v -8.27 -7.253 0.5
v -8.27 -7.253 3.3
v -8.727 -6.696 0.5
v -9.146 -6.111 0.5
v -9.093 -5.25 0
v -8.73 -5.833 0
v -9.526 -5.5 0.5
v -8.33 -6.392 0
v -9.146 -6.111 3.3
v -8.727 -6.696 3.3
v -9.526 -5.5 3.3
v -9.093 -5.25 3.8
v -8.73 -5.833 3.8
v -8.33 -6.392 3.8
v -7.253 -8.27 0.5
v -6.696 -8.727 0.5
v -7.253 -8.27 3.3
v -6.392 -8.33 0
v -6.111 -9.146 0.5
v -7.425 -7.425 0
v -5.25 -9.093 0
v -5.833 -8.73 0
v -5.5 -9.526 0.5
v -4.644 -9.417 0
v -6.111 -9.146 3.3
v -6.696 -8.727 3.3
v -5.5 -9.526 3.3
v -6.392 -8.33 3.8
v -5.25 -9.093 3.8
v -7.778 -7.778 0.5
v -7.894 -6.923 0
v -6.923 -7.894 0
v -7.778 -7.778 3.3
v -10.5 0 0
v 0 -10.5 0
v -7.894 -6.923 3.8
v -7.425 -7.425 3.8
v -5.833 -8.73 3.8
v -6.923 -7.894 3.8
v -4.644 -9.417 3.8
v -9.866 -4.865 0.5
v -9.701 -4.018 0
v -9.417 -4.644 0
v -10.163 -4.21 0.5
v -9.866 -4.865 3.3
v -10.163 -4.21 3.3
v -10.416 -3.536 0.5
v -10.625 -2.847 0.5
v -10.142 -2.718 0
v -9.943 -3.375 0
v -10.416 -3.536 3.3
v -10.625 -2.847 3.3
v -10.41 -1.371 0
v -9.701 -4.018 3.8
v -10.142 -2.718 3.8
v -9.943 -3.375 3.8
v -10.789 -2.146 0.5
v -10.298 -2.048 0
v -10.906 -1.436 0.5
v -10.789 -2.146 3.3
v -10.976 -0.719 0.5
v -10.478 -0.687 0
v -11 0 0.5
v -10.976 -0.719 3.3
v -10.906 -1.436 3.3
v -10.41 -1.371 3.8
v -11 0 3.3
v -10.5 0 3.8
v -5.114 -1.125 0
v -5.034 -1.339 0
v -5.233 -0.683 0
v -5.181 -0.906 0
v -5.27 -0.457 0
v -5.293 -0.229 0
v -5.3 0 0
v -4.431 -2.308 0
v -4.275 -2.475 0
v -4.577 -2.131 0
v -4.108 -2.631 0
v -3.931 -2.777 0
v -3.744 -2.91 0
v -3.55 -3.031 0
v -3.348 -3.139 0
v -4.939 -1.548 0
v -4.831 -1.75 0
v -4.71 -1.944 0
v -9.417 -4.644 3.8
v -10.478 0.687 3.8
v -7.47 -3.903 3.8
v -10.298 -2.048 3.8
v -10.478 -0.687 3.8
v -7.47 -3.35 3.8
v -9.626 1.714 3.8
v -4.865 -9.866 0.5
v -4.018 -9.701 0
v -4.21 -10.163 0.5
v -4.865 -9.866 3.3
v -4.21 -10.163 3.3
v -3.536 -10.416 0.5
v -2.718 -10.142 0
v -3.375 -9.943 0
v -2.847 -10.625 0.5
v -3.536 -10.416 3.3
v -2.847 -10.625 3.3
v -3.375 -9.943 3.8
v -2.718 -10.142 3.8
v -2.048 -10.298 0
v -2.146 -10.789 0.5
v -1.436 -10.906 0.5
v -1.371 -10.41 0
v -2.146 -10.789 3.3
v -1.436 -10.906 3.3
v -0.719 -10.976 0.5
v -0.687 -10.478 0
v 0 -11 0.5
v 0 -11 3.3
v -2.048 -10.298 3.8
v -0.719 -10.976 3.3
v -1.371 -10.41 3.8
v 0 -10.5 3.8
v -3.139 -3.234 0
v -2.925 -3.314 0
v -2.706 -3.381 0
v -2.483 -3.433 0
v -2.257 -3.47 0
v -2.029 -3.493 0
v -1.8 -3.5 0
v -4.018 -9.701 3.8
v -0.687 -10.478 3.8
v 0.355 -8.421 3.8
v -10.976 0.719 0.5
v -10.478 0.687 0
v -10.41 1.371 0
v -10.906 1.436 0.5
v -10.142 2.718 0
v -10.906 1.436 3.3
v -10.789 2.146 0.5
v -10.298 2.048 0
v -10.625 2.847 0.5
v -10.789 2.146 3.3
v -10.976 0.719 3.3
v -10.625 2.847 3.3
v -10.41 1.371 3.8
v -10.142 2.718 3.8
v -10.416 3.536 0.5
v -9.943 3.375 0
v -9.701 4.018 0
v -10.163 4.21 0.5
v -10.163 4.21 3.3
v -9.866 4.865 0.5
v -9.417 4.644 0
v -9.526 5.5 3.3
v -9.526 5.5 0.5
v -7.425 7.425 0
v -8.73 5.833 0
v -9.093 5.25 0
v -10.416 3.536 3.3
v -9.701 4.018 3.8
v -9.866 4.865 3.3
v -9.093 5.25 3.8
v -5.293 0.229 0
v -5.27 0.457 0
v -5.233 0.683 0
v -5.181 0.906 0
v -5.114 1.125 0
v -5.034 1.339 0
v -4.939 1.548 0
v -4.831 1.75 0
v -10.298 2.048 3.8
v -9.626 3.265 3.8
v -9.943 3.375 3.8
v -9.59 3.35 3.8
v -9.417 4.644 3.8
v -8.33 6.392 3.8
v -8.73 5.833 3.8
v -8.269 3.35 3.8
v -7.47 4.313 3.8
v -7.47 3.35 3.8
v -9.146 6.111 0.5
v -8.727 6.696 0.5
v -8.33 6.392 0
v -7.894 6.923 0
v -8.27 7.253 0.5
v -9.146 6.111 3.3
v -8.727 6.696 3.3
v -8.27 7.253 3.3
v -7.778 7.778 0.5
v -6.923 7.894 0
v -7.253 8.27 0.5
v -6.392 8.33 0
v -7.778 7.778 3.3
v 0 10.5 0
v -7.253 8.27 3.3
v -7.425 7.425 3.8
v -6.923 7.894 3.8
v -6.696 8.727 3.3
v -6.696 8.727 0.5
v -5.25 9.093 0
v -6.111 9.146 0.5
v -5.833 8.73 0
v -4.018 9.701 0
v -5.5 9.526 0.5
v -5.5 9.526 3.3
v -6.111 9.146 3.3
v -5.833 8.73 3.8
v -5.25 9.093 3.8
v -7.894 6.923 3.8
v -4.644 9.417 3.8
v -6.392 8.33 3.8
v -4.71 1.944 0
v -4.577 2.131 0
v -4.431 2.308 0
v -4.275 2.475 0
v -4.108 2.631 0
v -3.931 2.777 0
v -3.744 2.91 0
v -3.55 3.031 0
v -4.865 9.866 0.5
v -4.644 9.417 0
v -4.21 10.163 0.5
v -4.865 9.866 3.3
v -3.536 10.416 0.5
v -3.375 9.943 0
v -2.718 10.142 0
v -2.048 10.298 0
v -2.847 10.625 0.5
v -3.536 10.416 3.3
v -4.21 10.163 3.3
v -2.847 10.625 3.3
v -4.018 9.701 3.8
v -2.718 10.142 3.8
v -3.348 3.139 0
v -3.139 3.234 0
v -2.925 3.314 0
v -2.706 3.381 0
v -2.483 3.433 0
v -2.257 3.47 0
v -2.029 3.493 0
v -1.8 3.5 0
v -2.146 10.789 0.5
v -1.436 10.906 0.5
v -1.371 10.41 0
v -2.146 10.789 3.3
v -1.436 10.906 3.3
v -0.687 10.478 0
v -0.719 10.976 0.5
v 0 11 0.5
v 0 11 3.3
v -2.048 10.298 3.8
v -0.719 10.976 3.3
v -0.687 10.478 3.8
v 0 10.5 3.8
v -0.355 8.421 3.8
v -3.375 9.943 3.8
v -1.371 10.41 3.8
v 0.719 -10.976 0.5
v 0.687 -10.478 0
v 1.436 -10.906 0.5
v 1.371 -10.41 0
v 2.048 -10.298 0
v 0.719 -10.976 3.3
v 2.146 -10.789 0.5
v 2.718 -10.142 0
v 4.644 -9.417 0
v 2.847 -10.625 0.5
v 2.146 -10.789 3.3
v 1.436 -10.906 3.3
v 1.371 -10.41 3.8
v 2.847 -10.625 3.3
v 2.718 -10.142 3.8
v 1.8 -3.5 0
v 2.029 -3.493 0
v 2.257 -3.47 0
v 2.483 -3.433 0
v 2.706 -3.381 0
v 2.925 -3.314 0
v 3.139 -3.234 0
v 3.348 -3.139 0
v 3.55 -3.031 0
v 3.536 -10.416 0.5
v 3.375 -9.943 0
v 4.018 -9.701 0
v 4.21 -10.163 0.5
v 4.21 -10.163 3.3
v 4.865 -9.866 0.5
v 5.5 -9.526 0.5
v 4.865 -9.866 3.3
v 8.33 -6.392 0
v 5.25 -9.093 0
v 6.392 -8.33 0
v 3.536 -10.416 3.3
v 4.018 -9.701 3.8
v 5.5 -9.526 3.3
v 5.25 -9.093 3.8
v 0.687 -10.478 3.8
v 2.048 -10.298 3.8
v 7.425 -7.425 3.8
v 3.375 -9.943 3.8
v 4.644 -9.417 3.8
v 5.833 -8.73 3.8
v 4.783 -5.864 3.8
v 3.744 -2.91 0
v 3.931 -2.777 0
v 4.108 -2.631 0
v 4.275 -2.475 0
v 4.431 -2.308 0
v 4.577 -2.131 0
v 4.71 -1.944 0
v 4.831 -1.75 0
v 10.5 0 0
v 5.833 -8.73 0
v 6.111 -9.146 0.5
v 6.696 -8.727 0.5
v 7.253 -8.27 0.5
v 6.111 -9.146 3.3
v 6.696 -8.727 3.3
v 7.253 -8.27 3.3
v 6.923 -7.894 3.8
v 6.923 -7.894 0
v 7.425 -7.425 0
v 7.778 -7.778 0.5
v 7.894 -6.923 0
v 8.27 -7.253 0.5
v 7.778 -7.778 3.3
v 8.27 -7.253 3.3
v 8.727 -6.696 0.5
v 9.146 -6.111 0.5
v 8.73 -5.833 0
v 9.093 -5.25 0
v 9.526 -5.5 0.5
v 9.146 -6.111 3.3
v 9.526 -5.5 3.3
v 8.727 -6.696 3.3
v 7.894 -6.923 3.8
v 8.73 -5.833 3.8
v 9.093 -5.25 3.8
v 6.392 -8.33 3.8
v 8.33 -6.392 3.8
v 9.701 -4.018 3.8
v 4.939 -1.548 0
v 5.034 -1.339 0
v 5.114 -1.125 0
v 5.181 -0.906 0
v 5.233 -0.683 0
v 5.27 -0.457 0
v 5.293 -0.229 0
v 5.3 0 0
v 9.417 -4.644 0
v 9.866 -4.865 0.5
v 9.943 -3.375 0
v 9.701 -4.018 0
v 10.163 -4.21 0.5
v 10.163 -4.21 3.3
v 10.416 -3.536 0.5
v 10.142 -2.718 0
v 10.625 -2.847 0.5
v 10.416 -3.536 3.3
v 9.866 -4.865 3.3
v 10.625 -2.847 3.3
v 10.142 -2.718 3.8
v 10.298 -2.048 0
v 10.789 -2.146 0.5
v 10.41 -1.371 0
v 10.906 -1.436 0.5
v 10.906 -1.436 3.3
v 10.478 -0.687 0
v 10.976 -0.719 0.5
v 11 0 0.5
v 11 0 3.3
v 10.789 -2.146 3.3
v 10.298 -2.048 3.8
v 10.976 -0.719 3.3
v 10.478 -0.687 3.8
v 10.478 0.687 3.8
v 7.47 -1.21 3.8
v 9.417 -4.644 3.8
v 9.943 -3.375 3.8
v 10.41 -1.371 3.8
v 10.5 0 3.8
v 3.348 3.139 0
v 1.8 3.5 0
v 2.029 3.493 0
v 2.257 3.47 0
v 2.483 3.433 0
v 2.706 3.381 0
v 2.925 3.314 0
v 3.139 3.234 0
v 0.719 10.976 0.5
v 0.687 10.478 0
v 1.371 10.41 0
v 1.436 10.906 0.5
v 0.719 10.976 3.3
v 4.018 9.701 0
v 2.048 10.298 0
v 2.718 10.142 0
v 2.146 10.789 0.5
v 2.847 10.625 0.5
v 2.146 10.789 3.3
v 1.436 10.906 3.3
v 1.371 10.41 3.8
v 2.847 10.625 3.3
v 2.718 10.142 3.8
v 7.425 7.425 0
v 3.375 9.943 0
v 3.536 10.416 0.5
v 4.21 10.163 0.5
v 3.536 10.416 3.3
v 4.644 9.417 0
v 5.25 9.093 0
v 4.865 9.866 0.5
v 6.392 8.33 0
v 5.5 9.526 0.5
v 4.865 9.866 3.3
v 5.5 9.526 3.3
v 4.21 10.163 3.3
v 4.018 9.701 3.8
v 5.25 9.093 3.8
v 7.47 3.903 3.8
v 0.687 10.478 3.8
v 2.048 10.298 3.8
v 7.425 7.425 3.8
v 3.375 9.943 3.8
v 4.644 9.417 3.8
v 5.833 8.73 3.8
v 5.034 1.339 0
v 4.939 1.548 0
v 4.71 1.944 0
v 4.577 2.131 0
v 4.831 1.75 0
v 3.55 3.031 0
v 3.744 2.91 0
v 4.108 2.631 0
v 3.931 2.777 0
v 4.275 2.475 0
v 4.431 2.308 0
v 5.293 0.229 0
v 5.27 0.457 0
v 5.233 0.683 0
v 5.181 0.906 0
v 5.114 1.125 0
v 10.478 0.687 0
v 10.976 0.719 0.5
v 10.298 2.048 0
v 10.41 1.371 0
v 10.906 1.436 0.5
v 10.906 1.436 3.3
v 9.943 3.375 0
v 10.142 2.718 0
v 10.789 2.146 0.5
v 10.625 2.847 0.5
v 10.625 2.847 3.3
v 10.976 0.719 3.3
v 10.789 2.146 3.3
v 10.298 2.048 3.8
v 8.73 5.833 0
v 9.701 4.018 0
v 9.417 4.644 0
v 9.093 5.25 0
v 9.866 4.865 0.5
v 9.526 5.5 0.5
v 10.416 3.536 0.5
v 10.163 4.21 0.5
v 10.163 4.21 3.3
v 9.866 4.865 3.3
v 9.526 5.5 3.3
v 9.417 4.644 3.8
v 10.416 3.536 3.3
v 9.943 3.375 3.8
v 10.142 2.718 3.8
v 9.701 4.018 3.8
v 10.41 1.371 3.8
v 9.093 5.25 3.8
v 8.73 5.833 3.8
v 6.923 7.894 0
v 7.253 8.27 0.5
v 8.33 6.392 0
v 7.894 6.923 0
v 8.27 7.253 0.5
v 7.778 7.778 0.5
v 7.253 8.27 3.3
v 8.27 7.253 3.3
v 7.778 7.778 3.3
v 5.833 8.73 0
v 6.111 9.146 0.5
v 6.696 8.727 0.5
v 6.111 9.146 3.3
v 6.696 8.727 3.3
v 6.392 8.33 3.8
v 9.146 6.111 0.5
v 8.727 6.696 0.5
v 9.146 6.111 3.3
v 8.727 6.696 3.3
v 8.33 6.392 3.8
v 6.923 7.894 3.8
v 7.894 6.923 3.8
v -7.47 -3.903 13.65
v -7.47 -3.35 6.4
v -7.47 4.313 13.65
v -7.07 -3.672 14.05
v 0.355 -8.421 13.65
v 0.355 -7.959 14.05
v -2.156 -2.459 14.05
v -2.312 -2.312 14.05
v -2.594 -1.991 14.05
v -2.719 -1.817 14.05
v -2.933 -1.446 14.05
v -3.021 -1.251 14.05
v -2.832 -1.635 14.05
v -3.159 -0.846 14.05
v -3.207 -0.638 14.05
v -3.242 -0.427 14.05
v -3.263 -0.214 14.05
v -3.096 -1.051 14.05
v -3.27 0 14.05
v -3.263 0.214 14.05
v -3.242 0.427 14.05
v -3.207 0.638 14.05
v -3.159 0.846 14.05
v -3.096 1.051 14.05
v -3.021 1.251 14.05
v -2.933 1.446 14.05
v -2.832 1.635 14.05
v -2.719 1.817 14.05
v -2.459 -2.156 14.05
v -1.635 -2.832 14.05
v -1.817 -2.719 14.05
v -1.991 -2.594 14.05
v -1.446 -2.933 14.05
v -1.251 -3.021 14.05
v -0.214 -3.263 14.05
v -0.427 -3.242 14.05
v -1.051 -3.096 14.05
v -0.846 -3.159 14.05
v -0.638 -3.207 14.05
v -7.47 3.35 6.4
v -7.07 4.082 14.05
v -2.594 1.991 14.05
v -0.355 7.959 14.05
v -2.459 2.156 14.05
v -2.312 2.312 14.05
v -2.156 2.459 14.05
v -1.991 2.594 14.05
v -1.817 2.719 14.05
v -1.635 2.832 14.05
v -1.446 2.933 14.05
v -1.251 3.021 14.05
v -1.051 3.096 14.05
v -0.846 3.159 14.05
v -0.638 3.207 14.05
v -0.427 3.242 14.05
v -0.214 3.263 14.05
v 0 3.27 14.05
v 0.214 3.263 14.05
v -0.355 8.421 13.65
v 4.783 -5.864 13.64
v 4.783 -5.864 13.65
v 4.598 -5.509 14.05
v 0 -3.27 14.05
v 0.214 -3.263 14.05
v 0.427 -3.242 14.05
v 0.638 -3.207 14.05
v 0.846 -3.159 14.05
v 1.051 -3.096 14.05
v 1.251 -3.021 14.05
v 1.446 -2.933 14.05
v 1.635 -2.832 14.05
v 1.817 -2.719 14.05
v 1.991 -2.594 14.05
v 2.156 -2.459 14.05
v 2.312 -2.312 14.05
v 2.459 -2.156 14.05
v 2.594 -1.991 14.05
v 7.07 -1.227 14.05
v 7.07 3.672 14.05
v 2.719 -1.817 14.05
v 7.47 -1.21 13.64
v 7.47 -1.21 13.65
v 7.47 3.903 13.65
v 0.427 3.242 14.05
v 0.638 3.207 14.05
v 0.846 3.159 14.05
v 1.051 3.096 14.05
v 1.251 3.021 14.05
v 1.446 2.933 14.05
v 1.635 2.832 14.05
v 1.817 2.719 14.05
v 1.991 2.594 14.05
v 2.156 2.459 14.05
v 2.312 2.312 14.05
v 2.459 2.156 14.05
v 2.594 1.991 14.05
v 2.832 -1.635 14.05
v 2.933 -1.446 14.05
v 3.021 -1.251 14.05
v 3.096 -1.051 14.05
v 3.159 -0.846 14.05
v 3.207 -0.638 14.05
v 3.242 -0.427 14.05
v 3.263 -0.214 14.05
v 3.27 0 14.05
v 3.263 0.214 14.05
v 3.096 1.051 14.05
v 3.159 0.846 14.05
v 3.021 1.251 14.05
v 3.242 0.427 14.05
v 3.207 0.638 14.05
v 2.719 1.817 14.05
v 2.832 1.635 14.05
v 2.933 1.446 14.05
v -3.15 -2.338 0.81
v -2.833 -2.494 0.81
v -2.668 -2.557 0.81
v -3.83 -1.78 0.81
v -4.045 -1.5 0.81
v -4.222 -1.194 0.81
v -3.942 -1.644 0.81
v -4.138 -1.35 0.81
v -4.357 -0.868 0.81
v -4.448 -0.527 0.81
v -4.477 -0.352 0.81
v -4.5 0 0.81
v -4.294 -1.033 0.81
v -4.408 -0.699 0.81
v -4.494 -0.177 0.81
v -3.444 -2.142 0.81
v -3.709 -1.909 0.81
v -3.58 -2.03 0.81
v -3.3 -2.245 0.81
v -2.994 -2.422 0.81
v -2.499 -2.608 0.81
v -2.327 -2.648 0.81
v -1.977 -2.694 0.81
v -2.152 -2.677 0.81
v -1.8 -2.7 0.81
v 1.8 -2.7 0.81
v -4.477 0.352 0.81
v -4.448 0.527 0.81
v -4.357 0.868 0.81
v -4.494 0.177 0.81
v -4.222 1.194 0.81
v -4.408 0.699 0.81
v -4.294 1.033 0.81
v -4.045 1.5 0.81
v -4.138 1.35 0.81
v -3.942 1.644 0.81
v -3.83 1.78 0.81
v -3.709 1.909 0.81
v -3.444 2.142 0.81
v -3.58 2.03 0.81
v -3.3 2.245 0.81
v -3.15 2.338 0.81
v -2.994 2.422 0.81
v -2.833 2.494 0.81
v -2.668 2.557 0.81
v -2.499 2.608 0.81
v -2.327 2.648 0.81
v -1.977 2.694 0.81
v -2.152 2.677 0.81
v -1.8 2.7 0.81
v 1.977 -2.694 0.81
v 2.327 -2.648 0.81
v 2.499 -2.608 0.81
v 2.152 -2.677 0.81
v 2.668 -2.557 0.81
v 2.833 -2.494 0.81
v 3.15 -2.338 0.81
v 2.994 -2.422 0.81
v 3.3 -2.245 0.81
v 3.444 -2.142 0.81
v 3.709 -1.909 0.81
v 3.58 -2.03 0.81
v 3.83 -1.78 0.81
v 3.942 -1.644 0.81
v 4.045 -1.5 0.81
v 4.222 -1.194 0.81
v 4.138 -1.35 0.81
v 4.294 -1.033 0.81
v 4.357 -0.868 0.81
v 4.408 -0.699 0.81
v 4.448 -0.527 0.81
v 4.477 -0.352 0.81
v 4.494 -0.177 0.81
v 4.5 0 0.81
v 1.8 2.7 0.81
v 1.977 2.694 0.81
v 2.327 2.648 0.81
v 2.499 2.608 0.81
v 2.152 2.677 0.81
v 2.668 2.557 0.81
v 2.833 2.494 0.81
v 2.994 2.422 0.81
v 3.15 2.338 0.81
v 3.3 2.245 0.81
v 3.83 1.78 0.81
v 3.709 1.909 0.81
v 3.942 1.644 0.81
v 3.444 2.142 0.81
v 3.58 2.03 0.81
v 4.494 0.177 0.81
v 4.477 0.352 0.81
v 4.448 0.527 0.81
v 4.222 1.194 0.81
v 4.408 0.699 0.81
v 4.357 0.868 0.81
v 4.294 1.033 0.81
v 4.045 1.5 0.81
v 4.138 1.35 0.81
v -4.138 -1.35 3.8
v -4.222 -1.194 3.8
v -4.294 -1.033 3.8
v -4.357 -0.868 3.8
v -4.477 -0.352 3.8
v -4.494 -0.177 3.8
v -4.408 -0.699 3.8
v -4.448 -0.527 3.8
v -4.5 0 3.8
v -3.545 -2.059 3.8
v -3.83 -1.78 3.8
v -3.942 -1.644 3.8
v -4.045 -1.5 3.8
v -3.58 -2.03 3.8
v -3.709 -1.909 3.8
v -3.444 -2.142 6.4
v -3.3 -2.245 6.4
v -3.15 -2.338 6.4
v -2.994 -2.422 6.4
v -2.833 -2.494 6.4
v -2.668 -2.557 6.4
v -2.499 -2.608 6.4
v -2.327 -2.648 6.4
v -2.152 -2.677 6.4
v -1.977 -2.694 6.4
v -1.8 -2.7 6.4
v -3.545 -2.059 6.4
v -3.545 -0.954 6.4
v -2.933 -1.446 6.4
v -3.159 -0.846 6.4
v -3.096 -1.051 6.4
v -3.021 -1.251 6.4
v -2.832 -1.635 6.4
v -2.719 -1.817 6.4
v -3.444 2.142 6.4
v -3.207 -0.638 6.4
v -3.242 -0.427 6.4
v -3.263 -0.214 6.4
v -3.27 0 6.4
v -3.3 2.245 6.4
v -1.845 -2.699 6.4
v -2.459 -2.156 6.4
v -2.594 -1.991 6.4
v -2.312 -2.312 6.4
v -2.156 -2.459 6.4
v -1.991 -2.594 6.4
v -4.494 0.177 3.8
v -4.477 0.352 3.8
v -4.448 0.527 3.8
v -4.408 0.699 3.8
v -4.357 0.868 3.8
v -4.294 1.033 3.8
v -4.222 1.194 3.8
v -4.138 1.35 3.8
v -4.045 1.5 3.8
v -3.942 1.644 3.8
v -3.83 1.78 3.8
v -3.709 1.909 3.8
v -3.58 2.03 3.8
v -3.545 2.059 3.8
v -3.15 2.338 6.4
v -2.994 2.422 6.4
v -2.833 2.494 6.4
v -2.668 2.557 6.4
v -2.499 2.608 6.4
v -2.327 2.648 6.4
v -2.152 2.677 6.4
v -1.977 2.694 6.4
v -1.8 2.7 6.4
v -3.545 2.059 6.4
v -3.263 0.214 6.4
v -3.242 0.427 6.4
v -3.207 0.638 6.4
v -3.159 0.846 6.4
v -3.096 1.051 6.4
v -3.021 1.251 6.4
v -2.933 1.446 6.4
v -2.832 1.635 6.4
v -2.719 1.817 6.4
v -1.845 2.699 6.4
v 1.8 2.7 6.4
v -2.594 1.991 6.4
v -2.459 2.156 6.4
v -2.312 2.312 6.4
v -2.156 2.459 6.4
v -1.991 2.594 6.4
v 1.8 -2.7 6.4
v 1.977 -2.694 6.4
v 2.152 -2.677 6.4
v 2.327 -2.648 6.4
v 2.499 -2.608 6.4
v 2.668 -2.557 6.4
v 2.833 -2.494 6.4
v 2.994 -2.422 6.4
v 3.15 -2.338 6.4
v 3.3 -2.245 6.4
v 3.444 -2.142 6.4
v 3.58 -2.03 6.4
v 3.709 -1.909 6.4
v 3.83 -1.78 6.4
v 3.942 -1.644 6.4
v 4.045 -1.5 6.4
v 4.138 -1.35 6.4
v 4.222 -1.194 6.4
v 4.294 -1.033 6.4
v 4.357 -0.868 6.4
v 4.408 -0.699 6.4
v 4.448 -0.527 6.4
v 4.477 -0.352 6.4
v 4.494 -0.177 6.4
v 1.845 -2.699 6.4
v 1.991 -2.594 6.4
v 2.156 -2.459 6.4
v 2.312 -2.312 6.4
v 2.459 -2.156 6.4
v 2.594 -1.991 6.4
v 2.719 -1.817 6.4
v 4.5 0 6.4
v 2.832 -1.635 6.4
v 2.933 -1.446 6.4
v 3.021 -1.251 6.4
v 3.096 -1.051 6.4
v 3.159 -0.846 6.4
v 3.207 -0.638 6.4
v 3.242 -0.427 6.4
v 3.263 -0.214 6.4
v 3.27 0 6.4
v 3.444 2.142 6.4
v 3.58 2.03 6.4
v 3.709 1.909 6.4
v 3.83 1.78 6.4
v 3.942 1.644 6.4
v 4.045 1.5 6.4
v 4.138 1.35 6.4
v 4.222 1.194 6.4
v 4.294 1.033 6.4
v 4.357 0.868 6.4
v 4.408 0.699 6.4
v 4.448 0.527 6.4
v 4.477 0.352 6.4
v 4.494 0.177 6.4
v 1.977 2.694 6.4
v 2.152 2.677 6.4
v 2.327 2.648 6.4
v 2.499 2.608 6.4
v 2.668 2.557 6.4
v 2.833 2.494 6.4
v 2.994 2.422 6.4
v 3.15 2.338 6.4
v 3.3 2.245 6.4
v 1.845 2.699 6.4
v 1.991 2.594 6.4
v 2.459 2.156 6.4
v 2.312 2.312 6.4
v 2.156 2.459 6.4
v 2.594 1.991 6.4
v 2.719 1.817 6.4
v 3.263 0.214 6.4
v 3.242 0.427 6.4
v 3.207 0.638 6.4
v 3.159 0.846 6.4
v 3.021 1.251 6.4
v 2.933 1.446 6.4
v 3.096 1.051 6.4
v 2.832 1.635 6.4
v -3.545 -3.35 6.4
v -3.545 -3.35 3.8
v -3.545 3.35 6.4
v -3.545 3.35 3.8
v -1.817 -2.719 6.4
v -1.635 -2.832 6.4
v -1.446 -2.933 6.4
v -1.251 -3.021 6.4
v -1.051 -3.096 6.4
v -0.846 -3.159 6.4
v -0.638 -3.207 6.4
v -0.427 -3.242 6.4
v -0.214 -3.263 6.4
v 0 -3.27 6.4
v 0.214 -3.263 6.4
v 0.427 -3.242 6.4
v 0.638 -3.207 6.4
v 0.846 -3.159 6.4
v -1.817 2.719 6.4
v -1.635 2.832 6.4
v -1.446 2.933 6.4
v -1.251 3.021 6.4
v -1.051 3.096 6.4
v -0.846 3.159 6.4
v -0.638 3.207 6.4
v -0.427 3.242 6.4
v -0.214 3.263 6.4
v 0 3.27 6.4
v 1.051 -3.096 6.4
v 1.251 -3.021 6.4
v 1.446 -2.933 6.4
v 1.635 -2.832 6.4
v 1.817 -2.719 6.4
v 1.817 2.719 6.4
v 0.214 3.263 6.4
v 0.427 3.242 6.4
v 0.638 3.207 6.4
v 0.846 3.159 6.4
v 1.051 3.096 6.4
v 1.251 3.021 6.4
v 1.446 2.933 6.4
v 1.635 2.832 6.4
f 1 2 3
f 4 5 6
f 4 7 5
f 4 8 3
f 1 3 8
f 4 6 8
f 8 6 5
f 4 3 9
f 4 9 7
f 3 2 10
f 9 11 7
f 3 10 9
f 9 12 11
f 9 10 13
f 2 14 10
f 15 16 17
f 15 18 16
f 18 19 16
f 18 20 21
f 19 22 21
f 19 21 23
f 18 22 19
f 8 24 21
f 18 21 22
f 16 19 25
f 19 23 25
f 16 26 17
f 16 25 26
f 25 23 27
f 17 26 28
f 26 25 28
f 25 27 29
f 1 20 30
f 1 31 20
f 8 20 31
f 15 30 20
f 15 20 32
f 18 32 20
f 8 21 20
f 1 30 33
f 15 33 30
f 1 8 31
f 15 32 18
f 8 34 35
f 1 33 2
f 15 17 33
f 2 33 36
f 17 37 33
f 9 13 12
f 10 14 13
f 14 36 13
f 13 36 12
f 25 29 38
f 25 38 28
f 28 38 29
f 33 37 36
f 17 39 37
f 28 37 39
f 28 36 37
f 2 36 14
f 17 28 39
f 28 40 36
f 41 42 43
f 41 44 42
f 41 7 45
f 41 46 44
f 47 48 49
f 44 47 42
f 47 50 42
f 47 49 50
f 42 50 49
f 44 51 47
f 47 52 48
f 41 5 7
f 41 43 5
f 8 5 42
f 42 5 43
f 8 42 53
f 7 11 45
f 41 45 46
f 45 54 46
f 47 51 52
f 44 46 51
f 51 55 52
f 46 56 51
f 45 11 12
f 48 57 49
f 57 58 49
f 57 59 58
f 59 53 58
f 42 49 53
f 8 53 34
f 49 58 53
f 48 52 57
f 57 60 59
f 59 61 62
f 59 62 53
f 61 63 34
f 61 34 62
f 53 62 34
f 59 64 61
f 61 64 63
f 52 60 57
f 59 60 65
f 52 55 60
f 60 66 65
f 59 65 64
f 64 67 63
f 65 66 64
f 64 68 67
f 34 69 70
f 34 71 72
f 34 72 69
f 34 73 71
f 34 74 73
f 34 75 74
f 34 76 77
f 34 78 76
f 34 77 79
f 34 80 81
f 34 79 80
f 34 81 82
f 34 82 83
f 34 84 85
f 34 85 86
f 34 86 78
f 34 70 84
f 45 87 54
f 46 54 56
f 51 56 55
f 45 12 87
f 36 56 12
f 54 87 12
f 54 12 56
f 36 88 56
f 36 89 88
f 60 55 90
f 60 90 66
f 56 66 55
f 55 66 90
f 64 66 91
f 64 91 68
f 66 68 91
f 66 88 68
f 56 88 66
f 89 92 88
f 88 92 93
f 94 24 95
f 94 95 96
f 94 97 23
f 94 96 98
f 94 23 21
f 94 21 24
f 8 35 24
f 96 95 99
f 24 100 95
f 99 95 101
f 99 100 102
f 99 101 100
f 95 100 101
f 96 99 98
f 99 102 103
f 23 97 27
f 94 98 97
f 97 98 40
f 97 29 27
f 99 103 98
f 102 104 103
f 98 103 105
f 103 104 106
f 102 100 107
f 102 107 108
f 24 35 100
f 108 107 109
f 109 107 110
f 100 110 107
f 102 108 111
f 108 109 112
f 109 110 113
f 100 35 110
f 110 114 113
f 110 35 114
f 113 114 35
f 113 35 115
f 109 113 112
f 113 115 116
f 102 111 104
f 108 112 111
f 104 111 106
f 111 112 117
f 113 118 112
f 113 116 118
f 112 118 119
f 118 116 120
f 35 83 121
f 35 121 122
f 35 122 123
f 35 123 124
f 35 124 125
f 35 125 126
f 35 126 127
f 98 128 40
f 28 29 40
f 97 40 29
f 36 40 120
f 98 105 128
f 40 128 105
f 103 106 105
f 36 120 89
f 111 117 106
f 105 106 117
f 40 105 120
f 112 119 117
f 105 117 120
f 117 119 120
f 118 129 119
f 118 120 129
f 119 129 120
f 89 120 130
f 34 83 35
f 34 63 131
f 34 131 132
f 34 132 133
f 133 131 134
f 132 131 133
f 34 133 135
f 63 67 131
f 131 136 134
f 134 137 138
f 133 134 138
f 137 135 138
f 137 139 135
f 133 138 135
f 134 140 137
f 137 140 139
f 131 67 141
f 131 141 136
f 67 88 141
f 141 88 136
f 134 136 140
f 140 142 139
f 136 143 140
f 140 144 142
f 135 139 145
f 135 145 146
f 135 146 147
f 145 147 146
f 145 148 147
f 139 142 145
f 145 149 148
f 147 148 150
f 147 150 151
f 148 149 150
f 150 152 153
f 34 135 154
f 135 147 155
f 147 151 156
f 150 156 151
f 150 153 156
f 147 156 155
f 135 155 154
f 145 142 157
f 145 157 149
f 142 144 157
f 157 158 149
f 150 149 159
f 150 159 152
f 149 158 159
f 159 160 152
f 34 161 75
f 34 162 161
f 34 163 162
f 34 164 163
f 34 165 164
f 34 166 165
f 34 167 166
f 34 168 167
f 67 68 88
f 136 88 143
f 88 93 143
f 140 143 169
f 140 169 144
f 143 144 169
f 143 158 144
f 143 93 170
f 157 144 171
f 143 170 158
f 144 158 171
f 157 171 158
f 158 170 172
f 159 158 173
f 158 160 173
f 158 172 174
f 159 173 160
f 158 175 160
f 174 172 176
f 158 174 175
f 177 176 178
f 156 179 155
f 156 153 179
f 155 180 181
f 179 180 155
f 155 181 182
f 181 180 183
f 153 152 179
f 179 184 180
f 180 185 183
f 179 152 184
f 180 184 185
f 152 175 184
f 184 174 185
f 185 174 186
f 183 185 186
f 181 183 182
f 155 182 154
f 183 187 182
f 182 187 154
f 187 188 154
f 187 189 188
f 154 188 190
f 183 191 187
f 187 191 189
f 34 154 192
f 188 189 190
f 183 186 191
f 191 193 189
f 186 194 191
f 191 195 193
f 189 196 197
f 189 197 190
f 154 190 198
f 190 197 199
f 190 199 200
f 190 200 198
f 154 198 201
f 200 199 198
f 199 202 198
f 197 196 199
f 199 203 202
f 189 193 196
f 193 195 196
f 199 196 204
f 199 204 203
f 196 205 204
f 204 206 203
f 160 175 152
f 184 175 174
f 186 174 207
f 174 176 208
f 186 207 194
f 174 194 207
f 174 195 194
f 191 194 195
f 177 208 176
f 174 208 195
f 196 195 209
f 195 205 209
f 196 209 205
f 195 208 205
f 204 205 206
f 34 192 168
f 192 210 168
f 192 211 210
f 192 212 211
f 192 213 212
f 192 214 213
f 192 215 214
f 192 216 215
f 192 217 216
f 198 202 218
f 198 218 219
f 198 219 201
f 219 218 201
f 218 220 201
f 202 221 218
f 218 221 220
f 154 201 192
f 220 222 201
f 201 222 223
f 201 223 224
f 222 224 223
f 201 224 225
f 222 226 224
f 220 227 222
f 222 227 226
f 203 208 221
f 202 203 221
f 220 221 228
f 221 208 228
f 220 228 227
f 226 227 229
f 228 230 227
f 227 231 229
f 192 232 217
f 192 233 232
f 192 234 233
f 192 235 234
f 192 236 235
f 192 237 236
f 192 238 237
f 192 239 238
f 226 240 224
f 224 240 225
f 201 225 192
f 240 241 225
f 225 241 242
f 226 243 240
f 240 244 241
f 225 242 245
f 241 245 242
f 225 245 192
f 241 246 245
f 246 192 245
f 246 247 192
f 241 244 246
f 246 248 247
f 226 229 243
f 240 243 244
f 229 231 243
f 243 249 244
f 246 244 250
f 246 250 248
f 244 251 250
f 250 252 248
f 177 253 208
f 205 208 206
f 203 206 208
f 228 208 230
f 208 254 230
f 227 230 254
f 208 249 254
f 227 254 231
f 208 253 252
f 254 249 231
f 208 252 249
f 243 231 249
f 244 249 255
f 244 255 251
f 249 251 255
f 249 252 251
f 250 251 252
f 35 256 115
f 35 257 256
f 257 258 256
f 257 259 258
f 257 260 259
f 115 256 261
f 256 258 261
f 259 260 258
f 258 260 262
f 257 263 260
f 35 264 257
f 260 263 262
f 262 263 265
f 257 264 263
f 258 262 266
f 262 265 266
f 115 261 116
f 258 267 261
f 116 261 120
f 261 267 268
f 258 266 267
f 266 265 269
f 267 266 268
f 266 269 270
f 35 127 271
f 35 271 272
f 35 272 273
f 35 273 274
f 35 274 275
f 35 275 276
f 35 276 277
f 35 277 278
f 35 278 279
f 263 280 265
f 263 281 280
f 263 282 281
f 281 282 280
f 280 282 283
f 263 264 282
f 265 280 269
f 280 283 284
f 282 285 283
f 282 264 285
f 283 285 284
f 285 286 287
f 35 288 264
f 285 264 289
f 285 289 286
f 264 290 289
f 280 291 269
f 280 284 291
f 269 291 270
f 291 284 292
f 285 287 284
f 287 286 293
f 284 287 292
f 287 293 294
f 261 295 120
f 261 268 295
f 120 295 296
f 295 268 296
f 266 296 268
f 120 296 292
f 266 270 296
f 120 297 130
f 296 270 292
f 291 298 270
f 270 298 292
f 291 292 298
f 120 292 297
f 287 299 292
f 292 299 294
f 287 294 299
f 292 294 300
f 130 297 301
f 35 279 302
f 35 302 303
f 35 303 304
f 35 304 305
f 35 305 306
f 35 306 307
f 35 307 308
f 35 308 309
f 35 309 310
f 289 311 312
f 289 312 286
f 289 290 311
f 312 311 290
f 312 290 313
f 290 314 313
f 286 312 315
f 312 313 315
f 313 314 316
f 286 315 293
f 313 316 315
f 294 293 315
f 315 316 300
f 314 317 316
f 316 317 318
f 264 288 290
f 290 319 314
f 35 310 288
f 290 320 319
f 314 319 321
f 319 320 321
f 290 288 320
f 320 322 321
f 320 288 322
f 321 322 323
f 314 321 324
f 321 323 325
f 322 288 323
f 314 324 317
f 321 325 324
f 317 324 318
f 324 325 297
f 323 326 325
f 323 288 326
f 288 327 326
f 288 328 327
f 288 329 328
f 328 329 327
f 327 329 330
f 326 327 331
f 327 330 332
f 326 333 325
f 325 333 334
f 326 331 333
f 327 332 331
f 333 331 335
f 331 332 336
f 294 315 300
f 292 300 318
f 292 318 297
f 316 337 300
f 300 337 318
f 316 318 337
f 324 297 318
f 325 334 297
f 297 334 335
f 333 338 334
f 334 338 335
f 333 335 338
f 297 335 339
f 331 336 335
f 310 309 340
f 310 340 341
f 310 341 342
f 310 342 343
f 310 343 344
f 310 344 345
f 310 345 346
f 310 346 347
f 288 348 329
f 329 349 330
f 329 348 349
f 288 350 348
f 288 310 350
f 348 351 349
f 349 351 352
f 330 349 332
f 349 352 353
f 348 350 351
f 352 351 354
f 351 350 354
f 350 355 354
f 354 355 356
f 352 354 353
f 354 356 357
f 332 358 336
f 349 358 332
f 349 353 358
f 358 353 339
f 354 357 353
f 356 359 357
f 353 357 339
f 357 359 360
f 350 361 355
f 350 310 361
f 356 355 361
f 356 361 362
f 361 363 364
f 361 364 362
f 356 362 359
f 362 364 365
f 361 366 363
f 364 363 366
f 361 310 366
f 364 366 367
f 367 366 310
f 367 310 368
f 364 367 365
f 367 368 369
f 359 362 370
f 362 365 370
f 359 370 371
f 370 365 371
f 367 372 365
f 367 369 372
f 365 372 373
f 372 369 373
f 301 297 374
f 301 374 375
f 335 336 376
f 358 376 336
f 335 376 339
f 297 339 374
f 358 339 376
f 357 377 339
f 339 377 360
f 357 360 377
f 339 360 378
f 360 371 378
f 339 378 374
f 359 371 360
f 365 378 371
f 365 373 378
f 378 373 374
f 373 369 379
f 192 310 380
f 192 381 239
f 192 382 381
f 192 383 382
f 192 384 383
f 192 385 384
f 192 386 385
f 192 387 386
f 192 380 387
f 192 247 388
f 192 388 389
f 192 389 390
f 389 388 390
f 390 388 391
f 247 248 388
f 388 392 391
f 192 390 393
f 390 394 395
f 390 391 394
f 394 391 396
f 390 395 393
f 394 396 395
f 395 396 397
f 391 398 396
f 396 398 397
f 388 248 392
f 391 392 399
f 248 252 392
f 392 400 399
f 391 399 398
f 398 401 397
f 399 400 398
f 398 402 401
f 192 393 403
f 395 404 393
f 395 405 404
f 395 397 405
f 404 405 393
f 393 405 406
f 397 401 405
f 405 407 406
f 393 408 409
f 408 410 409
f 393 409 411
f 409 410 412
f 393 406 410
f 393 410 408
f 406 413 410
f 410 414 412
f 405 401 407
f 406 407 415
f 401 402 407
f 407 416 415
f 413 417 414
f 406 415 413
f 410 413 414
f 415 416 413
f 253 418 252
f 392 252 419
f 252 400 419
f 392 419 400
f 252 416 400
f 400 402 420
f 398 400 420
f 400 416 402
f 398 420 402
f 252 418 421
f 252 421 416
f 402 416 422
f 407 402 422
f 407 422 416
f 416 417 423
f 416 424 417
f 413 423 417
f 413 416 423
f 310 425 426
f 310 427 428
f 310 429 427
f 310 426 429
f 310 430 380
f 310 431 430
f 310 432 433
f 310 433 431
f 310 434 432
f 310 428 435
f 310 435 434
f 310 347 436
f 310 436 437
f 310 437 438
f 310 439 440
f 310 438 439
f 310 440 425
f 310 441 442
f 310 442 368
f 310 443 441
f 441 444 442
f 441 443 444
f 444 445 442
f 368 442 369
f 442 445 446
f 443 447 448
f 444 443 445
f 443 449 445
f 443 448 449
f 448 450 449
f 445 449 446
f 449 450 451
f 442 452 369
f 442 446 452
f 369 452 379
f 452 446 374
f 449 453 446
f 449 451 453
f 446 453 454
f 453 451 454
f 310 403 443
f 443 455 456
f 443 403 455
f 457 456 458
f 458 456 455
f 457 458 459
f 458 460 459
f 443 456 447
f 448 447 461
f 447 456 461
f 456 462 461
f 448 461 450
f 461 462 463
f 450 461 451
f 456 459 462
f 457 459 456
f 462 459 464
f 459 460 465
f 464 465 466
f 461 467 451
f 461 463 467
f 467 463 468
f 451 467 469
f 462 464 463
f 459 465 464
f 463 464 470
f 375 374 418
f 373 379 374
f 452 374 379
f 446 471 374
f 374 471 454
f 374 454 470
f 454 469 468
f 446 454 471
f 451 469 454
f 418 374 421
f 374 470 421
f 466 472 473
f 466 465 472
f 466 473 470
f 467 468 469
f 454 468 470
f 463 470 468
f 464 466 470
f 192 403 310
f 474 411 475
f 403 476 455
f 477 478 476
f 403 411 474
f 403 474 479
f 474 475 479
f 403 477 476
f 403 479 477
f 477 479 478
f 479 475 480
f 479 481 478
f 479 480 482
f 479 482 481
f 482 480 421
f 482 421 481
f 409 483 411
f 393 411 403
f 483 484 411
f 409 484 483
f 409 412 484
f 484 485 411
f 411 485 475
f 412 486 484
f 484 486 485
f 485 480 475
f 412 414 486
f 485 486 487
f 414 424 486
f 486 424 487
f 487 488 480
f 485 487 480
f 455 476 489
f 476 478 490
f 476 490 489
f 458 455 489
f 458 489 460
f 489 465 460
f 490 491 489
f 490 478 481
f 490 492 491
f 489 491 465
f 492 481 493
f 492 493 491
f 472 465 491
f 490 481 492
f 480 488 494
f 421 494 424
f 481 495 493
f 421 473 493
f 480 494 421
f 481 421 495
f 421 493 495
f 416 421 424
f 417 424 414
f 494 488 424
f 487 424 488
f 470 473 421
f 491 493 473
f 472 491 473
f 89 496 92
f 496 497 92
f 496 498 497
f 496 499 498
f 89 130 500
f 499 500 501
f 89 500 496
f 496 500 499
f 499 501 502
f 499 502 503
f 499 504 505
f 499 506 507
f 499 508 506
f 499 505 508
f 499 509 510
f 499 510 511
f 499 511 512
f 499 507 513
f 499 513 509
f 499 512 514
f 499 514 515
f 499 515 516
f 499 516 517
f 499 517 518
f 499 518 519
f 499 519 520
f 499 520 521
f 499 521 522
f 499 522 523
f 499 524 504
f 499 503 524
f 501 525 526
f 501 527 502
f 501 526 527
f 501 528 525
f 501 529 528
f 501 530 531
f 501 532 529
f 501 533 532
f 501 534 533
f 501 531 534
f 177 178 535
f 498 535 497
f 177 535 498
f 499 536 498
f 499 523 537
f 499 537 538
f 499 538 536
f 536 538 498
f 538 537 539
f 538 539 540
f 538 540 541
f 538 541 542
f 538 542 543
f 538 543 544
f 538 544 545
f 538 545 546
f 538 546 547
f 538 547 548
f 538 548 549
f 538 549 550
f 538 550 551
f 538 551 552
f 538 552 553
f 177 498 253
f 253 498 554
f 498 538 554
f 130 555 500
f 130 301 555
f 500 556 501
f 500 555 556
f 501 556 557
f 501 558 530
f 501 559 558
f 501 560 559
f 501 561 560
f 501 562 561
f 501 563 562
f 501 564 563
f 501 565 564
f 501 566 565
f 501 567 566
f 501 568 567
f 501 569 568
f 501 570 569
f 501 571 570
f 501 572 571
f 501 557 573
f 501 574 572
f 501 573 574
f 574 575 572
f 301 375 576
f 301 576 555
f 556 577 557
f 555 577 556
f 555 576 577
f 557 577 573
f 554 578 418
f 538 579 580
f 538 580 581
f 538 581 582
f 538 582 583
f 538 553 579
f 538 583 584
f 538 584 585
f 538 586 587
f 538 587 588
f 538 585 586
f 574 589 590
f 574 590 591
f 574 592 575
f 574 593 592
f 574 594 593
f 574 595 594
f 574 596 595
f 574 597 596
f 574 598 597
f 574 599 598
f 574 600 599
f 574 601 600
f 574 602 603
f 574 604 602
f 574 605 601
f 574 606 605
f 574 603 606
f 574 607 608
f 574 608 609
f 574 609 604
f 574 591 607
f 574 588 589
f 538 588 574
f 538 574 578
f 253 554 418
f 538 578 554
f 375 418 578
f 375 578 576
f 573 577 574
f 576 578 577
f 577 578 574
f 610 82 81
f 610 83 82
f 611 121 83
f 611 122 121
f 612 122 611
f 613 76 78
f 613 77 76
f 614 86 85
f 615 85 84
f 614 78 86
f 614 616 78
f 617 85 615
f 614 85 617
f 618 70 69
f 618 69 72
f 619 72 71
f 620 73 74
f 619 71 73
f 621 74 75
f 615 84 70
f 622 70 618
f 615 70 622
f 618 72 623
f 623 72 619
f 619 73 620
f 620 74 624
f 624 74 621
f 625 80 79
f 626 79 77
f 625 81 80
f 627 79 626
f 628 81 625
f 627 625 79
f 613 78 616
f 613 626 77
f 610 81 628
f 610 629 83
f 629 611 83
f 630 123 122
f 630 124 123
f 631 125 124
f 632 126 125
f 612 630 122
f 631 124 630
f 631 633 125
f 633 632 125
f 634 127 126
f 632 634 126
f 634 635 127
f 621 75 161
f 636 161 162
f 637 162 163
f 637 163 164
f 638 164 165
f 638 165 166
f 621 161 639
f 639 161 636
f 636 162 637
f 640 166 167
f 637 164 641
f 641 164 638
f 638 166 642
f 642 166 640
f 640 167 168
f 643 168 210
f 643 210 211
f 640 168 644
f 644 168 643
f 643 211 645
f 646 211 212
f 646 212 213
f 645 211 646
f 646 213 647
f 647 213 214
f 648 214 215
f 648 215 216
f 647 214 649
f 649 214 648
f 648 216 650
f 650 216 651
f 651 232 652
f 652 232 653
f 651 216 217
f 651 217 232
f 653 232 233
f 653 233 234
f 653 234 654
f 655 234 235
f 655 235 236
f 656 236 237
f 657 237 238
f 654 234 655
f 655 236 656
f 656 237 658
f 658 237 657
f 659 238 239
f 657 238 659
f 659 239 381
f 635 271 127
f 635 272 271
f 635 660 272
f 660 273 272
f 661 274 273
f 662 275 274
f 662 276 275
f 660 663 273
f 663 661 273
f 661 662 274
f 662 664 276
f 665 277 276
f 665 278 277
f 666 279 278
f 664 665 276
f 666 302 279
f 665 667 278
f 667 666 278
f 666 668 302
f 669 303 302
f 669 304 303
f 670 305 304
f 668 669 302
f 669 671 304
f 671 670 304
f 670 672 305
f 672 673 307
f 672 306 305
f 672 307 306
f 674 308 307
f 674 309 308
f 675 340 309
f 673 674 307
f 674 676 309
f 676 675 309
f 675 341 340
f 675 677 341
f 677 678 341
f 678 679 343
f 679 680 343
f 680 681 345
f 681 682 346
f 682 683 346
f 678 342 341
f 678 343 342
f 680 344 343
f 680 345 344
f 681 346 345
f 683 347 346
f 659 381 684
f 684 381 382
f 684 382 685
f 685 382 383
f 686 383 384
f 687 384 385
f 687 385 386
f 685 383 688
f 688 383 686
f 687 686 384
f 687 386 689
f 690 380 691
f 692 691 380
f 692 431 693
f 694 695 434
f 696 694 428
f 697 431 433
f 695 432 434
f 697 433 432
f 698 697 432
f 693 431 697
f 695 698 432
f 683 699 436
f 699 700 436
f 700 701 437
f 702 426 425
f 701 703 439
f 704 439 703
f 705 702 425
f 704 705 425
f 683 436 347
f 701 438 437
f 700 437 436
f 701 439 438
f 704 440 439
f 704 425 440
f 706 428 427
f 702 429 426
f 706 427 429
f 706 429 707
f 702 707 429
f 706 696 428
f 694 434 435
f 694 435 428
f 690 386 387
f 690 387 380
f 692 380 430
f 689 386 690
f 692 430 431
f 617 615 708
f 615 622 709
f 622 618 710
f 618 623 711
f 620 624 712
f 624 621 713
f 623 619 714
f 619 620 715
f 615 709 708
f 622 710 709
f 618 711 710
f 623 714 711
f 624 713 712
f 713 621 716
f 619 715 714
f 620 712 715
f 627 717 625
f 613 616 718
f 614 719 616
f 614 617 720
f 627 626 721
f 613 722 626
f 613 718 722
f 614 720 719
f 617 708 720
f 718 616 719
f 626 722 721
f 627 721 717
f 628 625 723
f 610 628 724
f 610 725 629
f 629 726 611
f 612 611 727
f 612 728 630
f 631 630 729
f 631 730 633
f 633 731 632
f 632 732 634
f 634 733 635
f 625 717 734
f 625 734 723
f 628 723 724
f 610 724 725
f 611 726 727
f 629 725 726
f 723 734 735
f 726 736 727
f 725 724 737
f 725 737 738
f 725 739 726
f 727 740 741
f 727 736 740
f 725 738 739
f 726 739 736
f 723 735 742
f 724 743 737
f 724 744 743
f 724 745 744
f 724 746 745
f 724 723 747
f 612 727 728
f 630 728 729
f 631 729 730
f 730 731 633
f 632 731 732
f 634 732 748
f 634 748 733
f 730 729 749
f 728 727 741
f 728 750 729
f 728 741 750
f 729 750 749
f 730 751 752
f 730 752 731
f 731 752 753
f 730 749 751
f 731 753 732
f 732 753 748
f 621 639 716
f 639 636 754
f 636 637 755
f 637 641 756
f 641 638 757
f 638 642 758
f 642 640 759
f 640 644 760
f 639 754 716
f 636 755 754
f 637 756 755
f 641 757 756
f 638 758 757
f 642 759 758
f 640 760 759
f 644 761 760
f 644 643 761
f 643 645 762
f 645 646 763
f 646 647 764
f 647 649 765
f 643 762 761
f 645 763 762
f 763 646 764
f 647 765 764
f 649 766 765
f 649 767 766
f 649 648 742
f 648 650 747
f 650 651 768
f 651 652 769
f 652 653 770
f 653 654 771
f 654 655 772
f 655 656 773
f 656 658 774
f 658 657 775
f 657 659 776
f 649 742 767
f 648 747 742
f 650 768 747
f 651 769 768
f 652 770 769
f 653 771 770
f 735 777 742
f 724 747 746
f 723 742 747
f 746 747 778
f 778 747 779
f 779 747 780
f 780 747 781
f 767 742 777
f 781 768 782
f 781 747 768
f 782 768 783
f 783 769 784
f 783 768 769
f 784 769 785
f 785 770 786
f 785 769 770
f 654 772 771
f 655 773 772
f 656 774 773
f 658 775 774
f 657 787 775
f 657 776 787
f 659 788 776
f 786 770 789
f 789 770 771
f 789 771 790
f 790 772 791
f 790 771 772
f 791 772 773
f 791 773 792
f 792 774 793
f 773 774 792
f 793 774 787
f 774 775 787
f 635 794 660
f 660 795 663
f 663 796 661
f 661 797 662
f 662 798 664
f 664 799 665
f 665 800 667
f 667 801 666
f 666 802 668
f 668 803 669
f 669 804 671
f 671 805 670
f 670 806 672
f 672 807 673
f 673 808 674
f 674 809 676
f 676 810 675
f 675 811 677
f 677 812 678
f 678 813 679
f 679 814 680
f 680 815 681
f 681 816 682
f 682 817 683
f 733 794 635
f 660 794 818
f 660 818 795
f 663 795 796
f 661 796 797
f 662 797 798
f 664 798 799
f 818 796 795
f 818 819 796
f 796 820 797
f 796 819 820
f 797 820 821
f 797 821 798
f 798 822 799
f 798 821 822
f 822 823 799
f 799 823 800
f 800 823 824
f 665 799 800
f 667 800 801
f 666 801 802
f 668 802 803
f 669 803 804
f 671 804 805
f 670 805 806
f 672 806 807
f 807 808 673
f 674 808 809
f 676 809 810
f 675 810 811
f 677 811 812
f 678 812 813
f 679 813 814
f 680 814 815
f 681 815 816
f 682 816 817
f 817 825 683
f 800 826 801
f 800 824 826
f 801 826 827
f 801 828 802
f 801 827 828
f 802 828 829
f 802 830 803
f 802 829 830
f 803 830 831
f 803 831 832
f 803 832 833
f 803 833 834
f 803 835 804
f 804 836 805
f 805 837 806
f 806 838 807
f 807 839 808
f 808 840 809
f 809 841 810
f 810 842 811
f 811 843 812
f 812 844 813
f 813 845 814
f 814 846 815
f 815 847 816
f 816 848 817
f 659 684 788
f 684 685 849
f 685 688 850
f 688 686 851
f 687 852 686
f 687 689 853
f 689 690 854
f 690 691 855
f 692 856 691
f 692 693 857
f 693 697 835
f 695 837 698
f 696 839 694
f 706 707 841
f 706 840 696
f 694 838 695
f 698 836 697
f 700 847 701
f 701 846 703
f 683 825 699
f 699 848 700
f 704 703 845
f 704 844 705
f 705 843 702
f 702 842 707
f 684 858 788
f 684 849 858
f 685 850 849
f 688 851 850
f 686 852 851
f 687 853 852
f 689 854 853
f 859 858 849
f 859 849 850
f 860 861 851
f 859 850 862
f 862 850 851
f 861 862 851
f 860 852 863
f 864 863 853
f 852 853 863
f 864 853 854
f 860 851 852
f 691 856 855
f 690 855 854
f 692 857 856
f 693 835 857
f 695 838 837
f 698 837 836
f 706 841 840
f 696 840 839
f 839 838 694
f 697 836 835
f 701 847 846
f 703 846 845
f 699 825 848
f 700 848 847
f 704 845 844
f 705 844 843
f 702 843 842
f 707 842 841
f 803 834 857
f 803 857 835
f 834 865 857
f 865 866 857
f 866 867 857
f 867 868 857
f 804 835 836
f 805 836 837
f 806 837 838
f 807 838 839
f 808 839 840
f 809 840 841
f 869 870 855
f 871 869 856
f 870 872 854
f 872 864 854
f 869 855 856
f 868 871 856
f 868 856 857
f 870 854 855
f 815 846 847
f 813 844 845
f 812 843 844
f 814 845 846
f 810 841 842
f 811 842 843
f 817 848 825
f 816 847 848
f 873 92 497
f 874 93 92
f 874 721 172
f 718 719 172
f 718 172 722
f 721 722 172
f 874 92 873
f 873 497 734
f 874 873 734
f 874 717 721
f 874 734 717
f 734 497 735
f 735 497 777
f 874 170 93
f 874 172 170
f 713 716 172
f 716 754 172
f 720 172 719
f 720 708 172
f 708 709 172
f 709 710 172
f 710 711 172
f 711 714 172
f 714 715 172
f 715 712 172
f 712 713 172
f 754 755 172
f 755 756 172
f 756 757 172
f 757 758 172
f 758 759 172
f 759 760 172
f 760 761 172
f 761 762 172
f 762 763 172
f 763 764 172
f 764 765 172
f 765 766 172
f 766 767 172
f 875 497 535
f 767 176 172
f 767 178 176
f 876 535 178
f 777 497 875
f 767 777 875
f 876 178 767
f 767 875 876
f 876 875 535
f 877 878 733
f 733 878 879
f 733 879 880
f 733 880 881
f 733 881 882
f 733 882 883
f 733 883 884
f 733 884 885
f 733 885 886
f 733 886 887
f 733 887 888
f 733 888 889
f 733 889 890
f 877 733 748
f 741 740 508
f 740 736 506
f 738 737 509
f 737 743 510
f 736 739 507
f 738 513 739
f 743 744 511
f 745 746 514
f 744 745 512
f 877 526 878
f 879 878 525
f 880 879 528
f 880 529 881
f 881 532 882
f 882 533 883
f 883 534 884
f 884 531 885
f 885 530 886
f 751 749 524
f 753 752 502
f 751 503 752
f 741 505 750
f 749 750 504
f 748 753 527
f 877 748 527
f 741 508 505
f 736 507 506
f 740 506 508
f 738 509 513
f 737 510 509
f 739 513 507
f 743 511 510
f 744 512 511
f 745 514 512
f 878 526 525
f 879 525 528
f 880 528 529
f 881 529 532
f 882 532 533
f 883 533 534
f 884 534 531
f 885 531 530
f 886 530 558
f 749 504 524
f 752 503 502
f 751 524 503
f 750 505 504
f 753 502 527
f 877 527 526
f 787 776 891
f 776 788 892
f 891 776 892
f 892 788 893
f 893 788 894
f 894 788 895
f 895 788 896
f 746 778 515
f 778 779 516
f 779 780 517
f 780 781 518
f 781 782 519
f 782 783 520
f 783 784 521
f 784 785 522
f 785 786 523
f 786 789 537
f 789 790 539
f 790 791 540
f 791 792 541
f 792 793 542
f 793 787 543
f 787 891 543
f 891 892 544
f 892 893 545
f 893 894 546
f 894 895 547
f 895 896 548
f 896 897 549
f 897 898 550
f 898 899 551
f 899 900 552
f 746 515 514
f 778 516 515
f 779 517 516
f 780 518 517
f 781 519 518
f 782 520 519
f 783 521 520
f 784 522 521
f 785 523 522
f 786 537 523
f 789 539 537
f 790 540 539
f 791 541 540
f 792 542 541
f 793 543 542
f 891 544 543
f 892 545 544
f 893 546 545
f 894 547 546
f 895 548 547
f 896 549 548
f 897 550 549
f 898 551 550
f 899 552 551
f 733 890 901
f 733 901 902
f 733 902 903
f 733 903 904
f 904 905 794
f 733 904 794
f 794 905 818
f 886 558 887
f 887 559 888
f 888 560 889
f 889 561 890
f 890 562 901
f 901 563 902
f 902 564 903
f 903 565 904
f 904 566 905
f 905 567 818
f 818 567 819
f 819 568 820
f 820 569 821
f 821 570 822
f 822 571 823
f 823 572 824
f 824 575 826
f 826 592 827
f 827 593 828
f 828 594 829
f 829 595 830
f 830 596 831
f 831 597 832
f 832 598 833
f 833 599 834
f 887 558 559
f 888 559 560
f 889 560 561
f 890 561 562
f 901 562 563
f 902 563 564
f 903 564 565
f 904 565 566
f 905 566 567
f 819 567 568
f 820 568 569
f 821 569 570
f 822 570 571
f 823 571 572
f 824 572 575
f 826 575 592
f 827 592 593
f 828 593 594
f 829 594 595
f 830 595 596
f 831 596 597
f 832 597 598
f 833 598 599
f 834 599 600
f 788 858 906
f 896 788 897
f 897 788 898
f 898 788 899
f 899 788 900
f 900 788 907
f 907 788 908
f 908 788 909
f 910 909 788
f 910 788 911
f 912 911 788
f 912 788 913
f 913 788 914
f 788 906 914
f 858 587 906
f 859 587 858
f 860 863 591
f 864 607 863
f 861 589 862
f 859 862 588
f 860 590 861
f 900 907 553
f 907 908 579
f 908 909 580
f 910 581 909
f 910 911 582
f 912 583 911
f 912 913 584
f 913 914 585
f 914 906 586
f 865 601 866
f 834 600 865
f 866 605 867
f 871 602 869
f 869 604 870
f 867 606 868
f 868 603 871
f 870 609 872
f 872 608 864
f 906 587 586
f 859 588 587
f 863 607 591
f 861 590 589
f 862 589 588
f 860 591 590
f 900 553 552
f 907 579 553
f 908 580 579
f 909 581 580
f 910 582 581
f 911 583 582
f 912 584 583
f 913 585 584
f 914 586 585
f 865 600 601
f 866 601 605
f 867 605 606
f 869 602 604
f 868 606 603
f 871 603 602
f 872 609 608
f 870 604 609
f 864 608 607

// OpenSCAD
// Shower / tub valve handle adapter (round flange + 7-cornered boss with a side window)
// Author: Denis Shatilov
// License: CC BY-NC 4.0
// https://creativecommons.org/licenses/by-nc/4.0/
//
// Boss, window depth, height, stem and worn bore measured with calipers 2026-11-11;
// the rest is still estimated from photos (README.md). Print flange-down, no supports.
//
// Section through the window (window points at -X, on a slanted boss face):
//
//              top_round_d
//             |<------>|
//        _____|        |_____
//       |     |        |     |  <- round bore from the top, down to the window
//   ____|     |        |     |
//  |window               |___|  <- window: one side only, floor = flange top,
//  |_______    ______    |____     back wall window_back from the far face
//  |_______|  |      |   |____|  <- flange, obround socket from below
//            /________\          (long axis along the window), bevelled entry

/* [Flange] */
// Flange outer diameter. Measured
flange_d = 22.0;
// Flange thickness (estimate)
flange_h = 3.8;
// Chamfer on flange top and bottom edges
flange_chamfer = 0.5;

/* [Boss] */
// Hexagon with one corner cut flat (7 corners). Window face runs from the point to a short flat
// Across the one short pair of parallel flats. Measured
boss_flats = 14.38;
// Across the other two pairs of parallel flats. Measured 15.04-15.10
hex_af = 15.09;
// Pointed corner to the cut-flat corner opposite it. Measured
boss_point_to_flat = 15.85;
// Overall height, flange bottom to hex top. Measured
total_h = 14.05;
// Width lost toward the top. The original looks deliberately skewed to wedge in
hex_taper = 0;
// Small chamfer on the top hex edges (0 = sharp)
boss_top_chamfer = 0.4;

/* [Side window] */
// Window height, from the flange top up
window_h = 2.6;
// Window width at the face. It spans most of the face from the point to the short flat
window_w_outer = 6.5;
// Window width at its back wall
window_w_inner = 6.5;
// Window back wall to the opposite outer face (the screw opening's depth). Measured
window_back = 11.09;
// Direction of the window face normal, degrees
window_angle = 180;

/* [Bottom socket] */
// Socket shape from below (the stem fits here). obround = elongated with rounded ends
bottom_shape = "obround"; // [obround, square]
// Long side (obround: end to end; square: across flats)
bottom_long = 8.8;
// Short side, across the straight sides
bottom_short = 5.2;
// Corner radius for the square shape
bottom_corner_r = 0.5;
// Bevel at the socket entry
bottom_entry_chamfer = 0.8;
// Socket depth from the bottom face. -1 = auto: up to the window ceiling
bottom_depth = -1;
// Rotation relative to the window, degrees. 0 = long axis points at the window
bottom_rot = 0;

/* [Top bore] */
// Round bore from the top: takes the stem tip. Stem measured 6.44; worn original 6.54 x 6.80
top_round_d = 6.44;
// Clearance on the stem bore only. Keep it tight: this is where the original wore
top_round_fit = 0.1;
// Bore depth from the top. -1 = auto: down to the window ceiling, so it meets the square
top_round_h = -1;

/* [Print fit] */
// Added to the hex size for printing (negative = smaller, so it slides into the handle)
hex_fit = -0.15;
// Added to the other hole sizes for printing (positive = looser)
hole_fit = 0.2;

/* [Output] */
// adapter = the real part. hex_gauge / bottom_gauge = thin, fast fit tests
part = "adapter"; // [adapter, hex_gauge, bottom_gauge]
// Cut away half along the window axis to see the inside (preview only)
cutaway = false;

$fn = 96;
eps = 0.01;

hex_af_p = hex_af + hex_fit;
// Pointed corner distance from the axis: the farthest point of the boss
hex_r    = hex_af_p / sqrt(3);
// Window back wall along its axis, past the centre (negative = short of it). Uses unfitted sizes
window_reach = hex_af / 2 - window_back;
boss_h   = total_h - flange_h;
bot_depth = bottom_depth < 0 ? flange_h + window_h : bottom_depth;
bore_h   = top_round_h  < 0 ? boss_h - window_h  : top_round_h;

assert(hex_r * 2 < flange_d, "Boss corners overhang the flange");
assert(bore_h + window_h >= boss_h - eps || bore_h + window_h < boss_h - 1, "Top bore stops less than 1 mm short of the window");
assert(bottom_long + 2 * bottom_entry_chamfer < hex_af_p - 1, "Bottom socket leaves a too-thin wall under the hex");

echo(str("Adapter: flange ", flange_d, " x ", flange_h, ", boss ", boss_flats + hex_fit, " / ", hex_af_p,
         " flats, point to flat ", boss_point_to_flat + hex_fit, ", taper ", hex_taper, ", x ", boss_h, ", total ", total_h,
         ", stem bore ", top_round_d + top_round_fit,
         ", window ", window_w_outer, "->", window_w_inner, " x ", window_h,
         " at ", window_angle, " deg, back wall ", round(-window_reach * 100) / 100, " short of centre"));

module chamfered_disc(d, h, c) {
    hull() {
        translate([0, 0, c]) cylinder(h = h - 2 * c, d = d);
        cylinder(h = h, d = d - 2 * c);
    }
}

// Boss outline grown by g. Built point-up (short flats vertical), then the window face
// (normal at 120 deg) is turned to window_angle.
module boss_profile(g) {
    big = 4 * flange_d;
    w_v = boss_flats + hex_fit + 2 * g;
    w_s = hex_af_p + 2 * g;
    cut = boss_point_to_flat + hex_fit + 2 * g - w_s / sqrt(3);
    rotate(window_angle - 120)
        intersection() {
            square([w_v, big], center = true);
            rotate(60) square([w_s, big], center = true);
            rotate(120) square([w_s, big], center = true);
            translate([-big / 2, -cut]) square(big);
        }
}

module boss_slice(g, z) { translate([0, 0, z]) linear_extrude(eps) boss_profile(g); }

module hex_boss(h) {
    c = boss_top_chamfer;
    t = -hex_taper / 2;
    hull() {
        boss_slice(0, 0);
        boss_slice(t, h - c - eps);
        if (c > 0) boss_slice(t - c, h - eps);
    }
}

module rounded_square(af, r) {
    offset(r = r) square(af - 2 * r, center = true);
}

// Bottom socket outline, grown by g on every side
module bottom_profile(g) {
    f = hole_fit;
    if (bottom_shape == "square")
        offset(delta = g) rounded_square(bottom_long + f, bottom_corner_r);
    else
        obround(bottom_long + f + 2 * g, bottom_short + f + 2 * g);
}

module obround(l, w) {
    hull() for (s = [-1, 1]) translate([s * (l - w) / 2, 0]) circle(d = w);
}

module body() {
    chamfered_disc(flange_d, flange_h, flange_chamfer);
    translate([0, 0, flange_h - eps]) hex_boss(boss_h + eps);
}

module cuts() {
    f = hole_fit;
    rotate([0, 0, window_angle]) {
        // Side window: from the +X corner (rotated to window_angle) in past the axis
        translate([0, 0, flange_h])
            linear_extrude(window_h)
                polygon([
                    [-window_reach,     -(window_w_inner + f) / 2],
                    [hex_r + 1,         -(window_w_outer + f) / 2],
                    [hex_r + 1,          (window_w_outer + f) / 2],
                    [-window_reach,      (window_w_inner + f) / 2]
                ]);
        // Bottom socket with a bevelled entry
        rotate([0, 0, bottom_rot]) {
            translate([0, 0, -eps])
                linear_extrude(bot_depth + eps)
                    bottom_profile(0);
            c = bottom_entry_chamfer;
            if (c > 0)
                hull() {
                    translate([0, 0, -eps]) linear_extrude(eps) bottom_profile(c);
                    translate([0, 0, c]) linear_extrude(eps) bottom_profile(0);
                }
        }
    }
    // Top bore
    translate([0, 0, total_h - bore_h])
        cylinder(h = bore_h + 1, d = top_round_d + top_round_fit);
}

module shower_handle_adapter() {
    difference() { body(); cuts(); }
}

// Hex gauge: the top 4 mm of the boss, to test-fit into the handle's hex socket
module hex_gauge() {
    translate([0, 0, -(total_h - 4)])
        intersection() {
            shower_handle_adapter();
            translate([0, 0, total_h - 4]) cylinder(h = 5, d = flange_d + 1);
        }
}

// Bottom gauge: the flange only (pocket + square), to test-fit on the stem
module bottom_gauge() {
    intersection() {
        shower_handle_adapter();
        translate([0, 0, -1]) cylinder(h = flange_h + 1, d = flange_d + 1);
    }
}

module output() {
    if (part == "hex_gauge") hex_gauge();
    else if (part == "bottom_gauge") bottom_gauge();
    else shower_handle_adapter();
}

if (cutaway)
    difference() {
        output();
        rotate([0, 0, window_angle])
            translate([-flange_d, 0, -1]) cube([2 * flange_d, flange_d, total_h + 2]);
    }
else
    output();
